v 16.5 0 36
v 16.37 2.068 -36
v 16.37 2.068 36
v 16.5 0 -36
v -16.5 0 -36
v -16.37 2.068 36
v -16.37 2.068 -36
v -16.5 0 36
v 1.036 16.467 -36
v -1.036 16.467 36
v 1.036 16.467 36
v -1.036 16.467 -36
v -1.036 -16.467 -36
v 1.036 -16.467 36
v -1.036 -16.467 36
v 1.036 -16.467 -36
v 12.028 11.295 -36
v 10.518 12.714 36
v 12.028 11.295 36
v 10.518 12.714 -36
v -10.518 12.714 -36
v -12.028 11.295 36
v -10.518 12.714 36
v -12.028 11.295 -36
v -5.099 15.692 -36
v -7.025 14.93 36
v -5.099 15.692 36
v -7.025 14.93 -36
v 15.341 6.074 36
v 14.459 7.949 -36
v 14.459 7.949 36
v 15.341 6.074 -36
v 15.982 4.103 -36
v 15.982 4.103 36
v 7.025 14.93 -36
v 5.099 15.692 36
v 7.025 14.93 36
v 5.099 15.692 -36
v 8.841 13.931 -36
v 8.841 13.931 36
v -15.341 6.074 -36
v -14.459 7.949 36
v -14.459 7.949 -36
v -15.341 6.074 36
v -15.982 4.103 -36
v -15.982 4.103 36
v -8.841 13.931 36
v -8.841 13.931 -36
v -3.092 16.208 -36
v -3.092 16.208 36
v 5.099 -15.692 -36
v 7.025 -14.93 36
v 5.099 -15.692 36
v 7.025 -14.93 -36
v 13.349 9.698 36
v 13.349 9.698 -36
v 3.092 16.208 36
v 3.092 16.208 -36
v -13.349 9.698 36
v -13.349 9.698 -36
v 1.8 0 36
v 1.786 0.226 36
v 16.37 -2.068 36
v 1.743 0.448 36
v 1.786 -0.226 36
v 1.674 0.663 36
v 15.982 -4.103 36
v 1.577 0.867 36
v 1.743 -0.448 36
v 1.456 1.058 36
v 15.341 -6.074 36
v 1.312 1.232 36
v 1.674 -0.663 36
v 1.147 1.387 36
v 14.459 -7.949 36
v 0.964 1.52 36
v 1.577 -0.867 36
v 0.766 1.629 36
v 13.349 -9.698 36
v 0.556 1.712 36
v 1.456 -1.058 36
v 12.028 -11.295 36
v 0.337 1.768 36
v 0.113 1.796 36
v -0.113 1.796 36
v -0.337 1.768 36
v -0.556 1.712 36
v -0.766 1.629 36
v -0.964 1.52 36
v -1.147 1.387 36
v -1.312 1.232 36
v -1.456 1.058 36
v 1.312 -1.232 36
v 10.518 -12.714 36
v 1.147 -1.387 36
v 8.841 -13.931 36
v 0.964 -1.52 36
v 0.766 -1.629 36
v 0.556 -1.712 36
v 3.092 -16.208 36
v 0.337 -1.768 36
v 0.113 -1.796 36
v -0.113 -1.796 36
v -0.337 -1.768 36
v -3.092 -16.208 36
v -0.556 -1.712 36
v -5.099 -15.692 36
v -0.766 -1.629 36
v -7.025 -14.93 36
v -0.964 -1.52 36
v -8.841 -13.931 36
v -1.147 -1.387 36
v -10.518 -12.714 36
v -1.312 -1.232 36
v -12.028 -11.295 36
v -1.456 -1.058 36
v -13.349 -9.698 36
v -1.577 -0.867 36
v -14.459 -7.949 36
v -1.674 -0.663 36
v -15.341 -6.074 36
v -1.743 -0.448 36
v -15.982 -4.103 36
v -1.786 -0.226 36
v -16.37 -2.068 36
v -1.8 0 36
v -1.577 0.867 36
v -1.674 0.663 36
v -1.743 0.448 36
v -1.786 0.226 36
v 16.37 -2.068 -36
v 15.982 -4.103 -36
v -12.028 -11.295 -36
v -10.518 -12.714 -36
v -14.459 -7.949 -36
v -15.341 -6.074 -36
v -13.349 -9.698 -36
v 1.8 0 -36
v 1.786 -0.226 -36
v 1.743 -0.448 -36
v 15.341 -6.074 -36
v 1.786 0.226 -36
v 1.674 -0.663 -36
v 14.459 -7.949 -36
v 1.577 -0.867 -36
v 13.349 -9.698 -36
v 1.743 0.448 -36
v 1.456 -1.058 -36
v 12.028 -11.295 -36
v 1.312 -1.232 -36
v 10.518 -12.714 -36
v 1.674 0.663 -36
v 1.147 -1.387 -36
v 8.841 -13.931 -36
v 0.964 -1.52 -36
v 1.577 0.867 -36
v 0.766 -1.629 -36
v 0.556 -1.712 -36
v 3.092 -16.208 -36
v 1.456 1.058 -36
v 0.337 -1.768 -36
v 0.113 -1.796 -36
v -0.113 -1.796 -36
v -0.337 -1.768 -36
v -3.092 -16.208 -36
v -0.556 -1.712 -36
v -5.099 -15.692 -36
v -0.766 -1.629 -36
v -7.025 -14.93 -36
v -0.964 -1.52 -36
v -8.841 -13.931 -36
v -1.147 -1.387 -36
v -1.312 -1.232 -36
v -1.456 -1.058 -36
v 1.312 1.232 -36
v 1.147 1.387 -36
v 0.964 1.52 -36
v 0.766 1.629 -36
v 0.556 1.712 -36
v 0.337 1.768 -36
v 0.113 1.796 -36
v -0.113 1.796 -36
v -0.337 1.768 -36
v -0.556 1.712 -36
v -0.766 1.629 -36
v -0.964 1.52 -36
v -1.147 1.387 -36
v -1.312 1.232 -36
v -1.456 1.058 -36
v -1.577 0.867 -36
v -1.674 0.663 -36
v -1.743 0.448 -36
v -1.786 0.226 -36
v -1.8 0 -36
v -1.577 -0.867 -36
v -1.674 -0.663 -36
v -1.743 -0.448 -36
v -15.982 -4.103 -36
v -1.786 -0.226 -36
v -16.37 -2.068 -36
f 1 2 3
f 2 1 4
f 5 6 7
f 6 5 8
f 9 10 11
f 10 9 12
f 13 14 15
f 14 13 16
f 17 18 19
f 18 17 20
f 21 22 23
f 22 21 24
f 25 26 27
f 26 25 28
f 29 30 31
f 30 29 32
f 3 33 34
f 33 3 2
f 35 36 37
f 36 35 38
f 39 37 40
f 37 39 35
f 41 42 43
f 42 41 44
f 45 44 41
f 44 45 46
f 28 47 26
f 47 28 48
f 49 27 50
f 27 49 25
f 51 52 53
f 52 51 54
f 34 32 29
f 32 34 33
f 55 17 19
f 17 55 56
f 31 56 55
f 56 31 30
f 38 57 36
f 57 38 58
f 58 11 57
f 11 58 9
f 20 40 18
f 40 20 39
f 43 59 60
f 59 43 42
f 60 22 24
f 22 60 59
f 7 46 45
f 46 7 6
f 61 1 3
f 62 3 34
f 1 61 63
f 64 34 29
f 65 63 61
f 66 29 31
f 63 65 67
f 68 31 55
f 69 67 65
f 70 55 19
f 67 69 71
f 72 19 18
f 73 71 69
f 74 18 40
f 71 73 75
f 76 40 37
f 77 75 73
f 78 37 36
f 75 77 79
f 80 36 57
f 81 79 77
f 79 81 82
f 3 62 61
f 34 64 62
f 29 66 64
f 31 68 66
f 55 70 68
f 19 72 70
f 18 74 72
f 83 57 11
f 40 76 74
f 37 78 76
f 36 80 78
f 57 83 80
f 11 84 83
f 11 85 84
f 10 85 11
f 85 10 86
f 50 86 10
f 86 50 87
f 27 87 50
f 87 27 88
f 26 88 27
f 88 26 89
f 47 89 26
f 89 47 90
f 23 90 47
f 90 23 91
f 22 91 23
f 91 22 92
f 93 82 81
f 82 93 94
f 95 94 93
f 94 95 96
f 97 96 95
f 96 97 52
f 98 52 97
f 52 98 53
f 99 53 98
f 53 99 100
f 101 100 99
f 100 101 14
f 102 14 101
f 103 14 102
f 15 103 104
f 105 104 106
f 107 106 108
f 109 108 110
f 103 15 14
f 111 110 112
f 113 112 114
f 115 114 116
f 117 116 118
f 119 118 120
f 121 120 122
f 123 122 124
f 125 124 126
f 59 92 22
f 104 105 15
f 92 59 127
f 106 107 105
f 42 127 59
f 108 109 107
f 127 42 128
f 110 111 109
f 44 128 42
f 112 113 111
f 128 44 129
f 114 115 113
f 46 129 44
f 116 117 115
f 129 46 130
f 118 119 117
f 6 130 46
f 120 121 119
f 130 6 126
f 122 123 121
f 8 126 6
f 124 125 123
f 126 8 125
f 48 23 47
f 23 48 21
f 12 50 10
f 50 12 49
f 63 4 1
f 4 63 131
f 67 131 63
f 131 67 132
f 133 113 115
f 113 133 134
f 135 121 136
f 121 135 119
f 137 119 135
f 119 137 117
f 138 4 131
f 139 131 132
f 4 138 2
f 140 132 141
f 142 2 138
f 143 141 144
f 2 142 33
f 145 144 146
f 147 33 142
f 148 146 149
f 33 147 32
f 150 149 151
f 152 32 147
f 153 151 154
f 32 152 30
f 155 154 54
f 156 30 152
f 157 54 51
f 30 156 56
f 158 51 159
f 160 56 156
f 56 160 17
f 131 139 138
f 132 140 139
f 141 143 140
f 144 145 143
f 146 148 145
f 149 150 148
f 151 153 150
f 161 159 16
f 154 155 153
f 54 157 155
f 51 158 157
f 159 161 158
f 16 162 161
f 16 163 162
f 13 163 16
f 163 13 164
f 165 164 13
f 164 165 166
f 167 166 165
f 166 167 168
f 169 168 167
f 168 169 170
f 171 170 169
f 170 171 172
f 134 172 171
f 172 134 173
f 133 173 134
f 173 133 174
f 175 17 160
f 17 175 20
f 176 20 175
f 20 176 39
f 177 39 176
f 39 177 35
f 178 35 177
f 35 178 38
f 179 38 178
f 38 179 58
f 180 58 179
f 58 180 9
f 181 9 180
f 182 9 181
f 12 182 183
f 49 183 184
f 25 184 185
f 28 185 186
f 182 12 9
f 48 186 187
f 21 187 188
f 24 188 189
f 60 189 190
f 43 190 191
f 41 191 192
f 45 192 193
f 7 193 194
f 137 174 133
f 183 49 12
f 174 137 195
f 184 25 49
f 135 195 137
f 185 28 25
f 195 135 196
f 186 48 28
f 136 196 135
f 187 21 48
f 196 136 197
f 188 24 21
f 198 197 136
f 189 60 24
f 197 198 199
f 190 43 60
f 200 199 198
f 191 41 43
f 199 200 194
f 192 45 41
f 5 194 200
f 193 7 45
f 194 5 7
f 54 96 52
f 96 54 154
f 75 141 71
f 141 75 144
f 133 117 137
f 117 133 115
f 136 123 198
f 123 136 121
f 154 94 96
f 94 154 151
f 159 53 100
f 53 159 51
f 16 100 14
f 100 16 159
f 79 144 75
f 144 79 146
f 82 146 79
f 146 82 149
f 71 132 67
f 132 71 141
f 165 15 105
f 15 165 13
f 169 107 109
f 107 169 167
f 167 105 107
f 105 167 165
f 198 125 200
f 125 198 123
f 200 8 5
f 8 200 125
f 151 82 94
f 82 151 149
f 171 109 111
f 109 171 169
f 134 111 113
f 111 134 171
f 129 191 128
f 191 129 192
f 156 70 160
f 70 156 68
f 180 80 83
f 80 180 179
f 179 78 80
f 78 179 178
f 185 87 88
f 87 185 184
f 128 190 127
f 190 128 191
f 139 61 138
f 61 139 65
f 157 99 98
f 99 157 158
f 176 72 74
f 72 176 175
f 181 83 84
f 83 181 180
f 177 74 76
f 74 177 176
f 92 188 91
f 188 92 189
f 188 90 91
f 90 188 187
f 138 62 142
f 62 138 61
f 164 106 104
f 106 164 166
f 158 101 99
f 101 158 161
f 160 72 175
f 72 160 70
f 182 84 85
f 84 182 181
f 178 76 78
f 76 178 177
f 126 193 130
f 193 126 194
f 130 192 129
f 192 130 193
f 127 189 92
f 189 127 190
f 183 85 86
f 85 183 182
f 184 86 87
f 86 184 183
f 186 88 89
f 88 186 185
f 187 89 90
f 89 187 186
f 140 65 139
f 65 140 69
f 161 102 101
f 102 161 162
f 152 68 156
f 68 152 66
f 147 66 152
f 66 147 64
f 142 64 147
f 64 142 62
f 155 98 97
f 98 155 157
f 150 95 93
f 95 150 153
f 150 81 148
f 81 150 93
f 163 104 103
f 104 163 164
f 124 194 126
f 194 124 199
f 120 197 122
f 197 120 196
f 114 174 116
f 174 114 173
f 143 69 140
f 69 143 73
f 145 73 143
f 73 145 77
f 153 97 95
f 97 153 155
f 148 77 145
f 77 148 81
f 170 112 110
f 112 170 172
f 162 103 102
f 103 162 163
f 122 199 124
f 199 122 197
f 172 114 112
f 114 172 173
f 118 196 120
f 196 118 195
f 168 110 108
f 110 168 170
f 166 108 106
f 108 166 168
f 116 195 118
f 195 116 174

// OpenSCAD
$fn = 50;


difference() {
	union() {
		translate(v = [0, 0, -36.0000000000]) {
			cylinder(h = 72, r = 16.5000000000);
		}
	}
	union() {
		translate(v = [0, 0, -100.0000000000]) {
			cylinder(h = 200, r = 1.8000000000);
		}
	}
}
